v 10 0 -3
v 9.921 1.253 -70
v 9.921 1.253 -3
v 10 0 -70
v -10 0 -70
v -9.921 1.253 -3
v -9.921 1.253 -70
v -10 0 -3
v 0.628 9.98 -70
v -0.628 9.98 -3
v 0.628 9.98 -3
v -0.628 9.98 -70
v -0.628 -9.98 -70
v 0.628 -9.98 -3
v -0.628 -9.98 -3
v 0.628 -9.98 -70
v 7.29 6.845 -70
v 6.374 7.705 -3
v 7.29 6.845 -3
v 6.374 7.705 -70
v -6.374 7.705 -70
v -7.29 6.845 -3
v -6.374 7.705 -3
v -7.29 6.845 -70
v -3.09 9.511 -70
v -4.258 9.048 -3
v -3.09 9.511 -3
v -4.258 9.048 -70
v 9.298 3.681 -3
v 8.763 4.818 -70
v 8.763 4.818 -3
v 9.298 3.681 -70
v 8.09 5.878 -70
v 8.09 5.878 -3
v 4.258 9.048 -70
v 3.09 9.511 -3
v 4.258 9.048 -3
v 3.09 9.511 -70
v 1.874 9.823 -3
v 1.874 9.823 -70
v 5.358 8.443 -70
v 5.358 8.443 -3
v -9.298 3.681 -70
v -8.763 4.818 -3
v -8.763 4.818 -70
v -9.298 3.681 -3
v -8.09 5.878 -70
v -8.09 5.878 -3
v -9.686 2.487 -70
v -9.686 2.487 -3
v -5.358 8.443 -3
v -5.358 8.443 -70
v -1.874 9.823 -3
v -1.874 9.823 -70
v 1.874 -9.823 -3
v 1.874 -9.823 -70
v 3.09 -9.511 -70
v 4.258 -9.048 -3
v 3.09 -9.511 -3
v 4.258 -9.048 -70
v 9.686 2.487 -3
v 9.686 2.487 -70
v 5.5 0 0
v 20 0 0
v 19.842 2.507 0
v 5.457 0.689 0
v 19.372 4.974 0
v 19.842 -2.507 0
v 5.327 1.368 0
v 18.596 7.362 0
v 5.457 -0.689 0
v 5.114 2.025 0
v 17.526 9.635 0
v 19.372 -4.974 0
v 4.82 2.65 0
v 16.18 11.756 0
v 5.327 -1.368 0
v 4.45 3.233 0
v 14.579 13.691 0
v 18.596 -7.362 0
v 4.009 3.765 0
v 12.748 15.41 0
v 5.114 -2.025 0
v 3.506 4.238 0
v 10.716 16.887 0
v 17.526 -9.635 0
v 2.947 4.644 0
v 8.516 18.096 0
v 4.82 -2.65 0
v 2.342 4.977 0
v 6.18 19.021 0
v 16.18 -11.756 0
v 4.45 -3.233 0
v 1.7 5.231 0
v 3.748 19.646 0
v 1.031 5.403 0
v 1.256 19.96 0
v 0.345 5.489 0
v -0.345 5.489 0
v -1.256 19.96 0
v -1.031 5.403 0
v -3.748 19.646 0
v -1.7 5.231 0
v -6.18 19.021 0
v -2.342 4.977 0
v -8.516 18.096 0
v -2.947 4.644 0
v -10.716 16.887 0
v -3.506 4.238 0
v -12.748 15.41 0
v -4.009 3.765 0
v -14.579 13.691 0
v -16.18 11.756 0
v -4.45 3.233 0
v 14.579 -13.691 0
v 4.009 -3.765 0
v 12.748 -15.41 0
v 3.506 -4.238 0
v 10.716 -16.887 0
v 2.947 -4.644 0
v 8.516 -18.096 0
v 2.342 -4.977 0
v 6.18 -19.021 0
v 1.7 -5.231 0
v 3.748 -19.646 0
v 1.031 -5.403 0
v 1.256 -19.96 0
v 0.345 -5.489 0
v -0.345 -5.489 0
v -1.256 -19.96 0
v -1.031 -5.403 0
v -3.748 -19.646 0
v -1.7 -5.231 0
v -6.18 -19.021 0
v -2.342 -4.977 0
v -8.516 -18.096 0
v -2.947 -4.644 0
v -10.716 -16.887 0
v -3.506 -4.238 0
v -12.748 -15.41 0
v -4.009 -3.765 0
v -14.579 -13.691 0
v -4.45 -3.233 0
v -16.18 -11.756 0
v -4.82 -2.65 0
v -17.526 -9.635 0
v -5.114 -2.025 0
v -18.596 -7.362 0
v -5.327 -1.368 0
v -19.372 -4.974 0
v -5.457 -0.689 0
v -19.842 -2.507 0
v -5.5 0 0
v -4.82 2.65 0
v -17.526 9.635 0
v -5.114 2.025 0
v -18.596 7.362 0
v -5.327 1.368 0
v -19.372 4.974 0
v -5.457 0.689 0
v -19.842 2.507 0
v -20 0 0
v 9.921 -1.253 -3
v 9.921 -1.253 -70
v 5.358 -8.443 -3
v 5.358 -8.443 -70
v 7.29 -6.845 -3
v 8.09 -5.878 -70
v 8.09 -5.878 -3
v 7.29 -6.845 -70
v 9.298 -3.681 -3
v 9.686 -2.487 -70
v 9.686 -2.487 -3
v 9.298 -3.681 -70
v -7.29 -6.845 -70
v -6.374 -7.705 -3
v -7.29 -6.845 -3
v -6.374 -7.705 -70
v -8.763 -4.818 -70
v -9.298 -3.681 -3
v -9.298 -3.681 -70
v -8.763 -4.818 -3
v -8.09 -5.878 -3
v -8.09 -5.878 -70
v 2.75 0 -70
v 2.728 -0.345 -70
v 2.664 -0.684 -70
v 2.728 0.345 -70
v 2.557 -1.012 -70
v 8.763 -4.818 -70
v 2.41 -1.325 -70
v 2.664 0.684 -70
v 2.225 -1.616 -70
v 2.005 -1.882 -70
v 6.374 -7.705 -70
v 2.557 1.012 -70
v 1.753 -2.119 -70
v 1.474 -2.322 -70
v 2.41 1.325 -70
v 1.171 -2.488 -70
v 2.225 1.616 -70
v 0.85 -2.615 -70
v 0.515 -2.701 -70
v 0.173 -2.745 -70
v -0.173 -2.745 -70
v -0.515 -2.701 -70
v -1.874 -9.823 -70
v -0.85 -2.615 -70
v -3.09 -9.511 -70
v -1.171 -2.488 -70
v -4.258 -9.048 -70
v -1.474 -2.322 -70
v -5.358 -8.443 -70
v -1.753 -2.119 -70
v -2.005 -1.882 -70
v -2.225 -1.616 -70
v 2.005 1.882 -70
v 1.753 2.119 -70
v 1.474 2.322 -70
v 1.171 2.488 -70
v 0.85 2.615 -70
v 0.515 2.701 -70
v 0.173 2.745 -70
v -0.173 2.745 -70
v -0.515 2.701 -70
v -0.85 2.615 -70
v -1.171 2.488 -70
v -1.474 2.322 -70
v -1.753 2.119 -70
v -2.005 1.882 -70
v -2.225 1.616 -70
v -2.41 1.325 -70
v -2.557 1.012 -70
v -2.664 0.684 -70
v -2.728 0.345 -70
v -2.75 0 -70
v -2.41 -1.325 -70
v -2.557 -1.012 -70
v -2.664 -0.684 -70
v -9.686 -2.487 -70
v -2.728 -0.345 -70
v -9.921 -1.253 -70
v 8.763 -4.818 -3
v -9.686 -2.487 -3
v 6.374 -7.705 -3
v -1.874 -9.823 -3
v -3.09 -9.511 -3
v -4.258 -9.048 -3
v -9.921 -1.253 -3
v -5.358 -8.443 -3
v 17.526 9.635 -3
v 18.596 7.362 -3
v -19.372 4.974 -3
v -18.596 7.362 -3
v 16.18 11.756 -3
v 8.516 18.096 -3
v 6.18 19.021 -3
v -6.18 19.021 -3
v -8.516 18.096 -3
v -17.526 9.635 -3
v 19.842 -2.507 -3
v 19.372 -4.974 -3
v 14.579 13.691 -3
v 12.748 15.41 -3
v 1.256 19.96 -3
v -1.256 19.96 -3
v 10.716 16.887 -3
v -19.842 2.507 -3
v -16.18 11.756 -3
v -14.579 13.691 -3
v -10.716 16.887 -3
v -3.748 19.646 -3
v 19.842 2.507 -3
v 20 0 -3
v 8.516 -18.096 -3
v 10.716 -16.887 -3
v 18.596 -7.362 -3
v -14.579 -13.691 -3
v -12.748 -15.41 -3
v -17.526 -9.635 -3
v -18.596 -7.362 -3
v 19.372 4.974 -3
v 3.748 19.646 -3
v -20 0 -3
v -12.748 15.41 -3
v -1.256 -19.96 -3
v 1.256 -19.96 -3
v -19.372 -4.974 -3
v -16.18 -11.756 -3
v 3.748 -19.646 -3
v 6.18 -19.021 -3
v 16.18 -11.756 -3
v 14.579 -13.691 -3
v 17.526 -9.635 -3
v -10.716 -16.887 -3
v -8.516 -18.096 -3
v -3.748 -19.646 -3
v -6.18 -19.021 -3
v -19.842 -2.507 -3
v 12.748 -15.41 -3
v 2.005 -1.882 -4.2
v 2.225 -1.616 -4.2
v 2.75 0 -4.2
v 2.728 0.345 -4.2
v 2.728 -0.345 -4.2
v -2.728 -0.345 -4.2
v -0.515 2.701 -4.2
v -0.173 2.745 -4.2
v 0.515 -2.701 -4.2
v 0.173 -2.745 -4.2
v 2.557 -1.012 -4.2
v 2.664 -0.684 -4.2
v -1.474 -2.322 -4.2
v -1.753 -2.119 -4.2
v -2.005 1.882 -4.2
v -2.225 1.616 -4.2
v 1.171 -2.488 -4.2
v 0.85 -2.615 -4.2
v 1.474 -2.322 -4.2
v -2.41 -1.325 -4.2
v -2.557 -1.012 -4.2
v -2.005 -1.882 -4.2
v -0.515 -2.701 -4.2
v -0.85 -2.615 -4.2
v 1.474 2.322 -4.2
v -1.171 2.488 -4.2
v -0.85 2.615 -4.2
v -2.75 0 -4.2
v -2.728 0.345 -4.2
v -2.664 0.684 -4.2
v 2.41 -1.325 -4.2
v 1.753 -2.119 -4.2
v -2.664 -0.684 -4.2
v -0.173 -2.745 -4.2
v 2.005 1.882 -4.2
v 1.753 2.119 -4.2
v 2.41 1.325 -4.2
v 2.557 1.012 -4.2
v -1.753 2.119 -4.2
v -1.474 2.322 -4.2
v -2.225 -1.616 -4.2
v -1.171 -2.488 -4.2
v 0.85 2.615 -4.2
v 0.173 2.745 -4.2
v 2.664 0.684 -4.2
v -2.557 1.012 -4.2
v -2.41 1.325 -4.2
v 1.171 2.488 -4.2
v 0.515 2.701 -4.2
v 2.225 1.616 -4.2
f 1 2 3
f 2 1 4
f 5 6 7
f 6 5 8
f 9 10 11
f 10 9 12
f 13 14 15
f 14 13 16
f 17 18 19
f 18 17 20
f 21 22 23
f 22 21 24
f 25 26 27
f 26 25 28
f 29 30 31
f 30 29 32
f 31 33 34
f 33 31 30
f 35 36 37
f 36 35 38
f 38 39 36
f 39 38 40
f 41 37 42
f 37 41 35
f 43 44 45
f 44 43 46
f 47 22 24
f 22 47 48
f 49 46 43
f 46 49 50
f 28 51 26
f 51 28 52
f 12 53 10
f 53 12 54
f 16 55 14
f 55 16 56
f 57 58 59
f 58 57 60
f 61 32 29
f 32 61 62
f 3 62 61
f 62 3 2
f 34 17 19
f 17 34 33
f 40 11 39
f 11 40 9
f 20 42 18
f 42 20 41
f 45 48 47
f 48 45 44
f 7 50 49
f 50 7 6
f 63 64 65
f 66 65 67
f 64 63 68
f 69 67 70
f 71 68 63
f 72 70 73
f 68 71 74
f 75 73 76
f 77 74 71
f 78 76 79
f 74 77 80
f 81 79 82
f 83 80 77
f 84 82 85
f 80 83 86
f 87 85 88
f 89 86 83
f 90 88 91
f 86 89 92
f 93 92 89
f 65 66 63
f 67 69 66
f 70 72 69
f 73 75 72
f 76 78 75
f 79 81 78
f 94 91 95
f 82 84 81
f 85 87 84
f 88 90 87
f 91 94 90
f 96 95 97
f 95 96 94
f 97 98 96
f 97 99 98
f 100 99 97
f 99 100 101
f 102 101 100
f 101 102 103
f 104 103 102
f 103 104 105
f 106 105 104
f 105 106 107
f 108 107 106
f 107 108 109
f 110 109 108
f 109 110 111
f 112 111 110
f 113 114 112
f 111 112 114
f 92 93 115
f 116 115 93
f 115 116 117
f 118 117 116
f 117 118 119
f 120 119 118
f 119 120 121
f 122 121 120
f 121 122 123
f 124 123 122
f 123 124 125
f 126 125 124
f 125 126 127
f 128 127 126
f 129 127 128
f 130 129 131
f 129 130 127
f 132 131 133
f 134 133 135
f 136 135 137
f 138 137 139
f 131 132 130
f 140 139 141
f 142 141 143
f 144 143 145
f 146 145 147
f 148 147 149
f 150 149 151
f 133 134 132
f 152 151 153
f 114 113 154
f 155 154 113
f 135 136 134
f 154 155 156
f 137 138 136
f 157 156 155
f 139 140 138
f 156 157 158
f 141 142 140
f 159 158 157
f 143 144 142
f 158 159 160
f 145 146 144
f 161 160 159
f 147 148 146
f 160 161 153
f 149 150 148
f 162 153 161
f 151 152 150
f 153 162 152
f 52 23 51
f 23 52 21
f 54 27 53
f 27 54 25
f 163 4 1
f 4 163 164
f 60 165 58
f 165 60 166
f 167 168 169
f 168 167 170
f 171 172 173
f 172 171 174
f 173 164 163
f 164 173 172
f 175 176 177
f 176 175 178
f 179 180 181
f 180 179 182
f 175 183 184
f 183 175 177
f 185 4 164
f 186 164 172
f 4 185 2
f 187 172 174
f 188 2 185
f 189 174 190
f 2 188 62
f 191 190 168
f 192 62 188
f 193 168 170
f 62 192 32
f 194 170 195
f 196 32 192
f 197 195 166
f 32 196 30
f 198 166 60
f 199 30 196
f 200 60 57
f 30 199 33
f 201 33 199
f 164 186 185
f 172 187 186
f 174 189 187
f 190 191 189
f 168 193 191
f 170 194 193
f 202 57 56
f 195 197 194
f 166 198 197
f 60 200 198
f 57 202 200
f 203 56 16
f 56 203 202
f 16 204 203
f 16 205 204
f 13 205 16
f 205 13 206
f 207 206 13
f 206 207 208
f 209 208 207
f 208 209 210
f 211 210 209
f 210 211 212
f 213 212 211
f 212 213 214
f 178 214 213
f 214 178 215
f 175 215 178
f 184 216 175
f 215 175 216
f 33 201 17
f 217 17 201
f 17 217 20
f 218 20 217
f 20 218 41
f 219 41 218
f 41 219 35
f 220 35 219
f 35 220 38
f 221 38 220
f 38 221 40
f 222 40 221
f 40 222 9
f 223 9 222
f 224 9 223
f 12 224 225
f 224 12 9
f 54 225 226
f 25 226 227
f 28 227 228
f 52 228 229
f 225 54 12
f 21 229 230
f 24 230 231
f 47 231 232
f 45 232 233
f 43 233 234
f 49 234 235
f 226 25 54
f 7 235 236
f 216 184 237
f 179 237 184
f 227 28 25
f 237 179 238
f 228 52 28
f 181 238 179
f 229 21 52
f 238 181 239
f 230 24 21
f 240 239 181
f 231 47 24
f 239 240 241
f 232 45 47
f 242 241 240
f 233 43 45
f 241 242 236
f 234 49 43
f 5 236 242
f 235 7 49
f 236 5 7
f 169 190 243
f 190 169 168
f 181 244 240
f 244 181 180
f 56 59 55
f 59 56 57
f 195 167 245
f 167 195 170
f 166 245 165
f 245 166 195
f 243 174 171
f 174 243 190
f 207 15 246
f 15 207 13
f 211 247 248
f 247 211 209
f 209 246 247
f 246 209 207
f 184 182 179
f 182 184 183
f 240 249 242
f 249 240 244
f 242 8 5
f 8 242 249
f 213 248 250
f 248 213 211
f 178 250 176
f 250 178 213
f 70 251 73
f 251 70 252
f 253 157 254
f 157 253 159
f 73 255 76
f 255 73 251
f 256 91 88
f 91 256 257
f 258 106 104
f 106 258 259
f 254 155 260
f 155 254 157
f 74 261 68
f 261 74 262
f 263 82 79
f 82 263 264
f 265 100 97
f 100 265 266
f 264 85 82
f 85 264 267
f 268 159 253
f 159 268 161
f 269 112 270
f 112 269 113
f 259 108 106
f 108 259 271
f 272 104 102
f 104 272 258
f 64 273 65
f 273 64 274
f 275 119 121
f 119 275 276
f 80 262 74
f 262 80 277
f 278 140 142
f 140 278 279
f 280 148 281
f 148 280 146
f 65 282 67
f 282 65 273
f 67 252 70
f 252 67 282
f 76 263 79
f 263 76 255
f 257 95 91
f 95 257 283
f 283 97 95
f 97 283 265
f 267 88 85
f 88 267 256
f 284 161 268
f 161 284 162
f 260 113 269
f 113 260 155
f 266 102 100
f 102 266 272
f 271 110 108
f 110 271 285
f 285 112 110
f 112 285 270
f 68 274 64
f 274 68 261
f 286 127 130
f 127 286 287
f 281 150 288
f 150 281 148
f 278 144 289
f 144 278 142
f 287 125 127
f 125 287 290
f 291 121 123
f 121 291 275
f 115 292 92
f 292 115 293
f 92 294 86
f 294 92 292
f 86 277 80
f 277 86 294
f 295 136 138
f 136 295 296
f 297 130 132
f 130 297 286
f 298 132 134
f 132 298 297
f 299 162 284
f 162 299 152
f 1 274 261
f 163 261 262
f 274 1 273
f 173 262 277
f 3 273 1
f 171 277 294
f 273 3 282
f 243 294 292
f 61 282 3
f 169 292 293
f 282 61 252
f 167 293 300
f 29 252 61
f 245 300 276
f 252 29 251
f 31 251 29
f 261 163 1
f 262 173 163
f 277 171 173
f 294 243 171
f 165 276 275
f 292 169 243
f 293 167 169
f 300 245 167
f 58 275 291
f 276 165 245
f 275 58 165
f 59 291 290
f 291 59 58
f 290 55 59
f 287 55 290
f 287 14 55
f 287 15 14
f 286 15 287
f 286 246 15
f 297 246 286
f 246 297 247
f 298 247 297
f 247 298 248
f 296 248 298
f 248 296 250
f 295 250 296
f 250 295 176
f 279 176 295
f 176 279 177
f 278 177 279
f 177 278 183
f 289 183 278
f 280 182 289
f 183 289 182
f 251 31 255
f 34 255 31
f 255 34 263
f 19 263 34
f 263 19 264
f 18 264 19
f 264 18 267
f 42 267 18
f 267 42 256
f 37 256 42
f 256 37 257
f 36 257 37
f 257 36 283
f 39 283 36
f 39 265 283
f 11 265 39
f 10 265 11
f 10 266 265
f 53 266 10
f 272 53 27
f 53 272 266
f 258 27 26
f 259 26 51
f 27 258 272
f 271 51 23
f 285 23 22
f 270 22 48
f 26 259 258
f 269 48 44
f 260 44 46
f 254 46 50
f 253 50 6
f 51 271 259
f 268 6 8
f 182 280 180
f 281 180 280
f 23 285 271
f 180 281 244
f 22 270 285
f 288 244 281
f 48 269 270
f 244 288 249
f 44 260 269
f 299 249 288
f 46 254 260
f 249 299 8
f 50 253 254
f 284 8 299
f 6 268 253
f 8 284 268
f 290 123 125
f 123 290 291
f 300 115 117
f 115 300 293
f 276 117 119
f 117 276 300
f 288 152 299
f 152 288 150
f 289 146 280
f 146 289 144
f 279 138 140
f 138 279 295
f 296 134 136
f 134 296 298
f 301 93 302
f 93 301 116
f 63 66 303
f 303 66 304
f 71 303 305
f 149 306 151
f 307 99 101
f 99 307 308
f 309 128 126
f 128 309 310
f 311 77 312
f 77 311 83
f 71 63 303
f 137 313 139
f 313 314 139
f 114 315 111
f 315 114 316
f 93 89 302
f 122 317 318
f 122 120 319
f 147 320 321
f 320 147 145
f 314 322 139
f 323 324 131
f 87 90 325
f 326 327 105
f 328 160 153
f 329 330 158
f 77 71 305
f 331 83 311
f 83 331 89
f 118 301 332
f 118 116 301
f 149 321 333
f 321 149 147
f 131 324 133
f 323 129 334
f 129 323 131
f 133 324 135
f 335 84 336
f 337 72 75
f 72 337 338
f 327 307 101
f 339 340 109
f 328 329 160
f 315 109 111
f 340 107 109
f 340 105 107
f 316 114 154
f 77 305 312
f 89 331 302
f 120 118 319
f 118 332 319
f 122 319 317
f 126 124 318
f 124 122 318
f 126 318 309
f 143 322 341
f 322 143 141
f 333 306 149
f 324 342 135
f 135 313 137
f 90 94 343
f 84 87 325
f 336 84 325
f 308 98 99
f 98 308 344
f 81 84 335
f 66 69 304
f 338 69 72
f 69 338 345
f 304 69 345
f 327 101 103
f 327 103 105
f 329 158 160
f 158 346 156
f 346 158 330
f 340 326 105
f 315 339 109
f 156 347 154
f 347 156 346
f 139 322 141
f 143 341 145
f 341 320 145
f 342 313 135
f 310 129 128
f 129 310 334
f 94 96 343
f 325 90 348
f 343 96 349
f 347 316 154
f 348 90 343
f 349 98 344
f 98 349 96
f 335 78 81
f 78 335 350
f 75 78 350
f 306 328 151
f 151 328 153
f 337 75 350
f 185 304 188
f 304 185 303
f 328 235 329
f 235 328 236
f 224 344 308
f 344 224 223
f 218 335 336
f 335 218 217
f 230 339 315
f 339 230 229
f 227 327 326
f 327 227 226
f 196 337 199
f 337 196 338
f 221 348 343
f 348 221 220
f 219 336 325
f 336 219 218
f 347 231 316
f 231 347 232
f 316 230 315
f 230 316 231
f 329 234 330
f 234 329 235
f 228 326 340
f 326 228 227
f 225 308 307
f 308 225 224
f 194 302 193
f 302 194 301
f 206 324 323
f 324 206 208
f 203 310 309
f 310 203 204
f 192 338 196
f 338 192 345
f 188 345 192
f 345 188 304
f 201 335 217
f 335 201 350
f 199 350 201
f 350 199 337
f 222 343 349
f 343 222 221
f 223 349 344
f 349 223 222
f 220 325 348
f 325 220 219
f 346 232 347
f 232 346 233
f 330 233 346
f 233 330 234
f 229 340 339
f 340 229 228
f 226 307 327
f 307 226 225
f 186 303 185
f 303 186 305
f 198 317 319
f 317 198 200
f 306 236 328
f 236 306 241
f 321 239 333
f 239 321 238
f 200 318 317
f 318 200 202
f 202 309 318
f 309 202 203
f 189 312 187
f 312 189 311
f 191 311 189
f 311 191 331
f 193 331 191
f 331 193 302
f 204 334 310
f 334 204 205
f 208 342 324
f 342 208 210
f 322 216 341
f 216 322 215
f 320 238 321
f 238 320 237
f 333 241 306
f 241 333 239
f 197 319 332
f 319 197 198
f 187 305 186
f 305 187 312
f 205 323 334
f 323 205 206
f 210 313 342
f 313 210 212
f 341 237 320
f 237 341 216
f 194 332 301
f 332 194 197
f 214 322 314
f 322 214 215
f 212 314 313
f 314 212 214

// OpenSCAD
$fn = 50;


difference() {
	union() {
		translate(v = [0, 0, -70.0000000000]) {
			cylinder(h = 70, r = 10.0000000000);
		}
		translate(v = [0, 0, -3.0000000000]) {
			cylinder(h = 3, r = 20.0000000000);
		}
	}
	union() {
		translate(v = [0, 0, 0]) {
			rotate(a = [0, 0, 0]) {
				difference() {
					union() {
						#translate(v = [0, 0, -70.0000000000]) {
							cylinder(h = 70, r = 2.2500000000);
						}
						#translate(v = [0, 0, -4.2000000000]) {
							cylinder(h = 4.2000000000, r1 = 2.7500000000, r2 = 5.5000000000);
						}
						#translate(v = [0, 0, -70.0000000000]) {
							cylinder(h = 70, r = 2.7500000000);
						}
						#translate(v = [0, 0, -70.0000000000]) {
							cylinder(h = 70, r = 2.2500000000);
						}
					}
					union();
				}
			}
		}
	}
}
